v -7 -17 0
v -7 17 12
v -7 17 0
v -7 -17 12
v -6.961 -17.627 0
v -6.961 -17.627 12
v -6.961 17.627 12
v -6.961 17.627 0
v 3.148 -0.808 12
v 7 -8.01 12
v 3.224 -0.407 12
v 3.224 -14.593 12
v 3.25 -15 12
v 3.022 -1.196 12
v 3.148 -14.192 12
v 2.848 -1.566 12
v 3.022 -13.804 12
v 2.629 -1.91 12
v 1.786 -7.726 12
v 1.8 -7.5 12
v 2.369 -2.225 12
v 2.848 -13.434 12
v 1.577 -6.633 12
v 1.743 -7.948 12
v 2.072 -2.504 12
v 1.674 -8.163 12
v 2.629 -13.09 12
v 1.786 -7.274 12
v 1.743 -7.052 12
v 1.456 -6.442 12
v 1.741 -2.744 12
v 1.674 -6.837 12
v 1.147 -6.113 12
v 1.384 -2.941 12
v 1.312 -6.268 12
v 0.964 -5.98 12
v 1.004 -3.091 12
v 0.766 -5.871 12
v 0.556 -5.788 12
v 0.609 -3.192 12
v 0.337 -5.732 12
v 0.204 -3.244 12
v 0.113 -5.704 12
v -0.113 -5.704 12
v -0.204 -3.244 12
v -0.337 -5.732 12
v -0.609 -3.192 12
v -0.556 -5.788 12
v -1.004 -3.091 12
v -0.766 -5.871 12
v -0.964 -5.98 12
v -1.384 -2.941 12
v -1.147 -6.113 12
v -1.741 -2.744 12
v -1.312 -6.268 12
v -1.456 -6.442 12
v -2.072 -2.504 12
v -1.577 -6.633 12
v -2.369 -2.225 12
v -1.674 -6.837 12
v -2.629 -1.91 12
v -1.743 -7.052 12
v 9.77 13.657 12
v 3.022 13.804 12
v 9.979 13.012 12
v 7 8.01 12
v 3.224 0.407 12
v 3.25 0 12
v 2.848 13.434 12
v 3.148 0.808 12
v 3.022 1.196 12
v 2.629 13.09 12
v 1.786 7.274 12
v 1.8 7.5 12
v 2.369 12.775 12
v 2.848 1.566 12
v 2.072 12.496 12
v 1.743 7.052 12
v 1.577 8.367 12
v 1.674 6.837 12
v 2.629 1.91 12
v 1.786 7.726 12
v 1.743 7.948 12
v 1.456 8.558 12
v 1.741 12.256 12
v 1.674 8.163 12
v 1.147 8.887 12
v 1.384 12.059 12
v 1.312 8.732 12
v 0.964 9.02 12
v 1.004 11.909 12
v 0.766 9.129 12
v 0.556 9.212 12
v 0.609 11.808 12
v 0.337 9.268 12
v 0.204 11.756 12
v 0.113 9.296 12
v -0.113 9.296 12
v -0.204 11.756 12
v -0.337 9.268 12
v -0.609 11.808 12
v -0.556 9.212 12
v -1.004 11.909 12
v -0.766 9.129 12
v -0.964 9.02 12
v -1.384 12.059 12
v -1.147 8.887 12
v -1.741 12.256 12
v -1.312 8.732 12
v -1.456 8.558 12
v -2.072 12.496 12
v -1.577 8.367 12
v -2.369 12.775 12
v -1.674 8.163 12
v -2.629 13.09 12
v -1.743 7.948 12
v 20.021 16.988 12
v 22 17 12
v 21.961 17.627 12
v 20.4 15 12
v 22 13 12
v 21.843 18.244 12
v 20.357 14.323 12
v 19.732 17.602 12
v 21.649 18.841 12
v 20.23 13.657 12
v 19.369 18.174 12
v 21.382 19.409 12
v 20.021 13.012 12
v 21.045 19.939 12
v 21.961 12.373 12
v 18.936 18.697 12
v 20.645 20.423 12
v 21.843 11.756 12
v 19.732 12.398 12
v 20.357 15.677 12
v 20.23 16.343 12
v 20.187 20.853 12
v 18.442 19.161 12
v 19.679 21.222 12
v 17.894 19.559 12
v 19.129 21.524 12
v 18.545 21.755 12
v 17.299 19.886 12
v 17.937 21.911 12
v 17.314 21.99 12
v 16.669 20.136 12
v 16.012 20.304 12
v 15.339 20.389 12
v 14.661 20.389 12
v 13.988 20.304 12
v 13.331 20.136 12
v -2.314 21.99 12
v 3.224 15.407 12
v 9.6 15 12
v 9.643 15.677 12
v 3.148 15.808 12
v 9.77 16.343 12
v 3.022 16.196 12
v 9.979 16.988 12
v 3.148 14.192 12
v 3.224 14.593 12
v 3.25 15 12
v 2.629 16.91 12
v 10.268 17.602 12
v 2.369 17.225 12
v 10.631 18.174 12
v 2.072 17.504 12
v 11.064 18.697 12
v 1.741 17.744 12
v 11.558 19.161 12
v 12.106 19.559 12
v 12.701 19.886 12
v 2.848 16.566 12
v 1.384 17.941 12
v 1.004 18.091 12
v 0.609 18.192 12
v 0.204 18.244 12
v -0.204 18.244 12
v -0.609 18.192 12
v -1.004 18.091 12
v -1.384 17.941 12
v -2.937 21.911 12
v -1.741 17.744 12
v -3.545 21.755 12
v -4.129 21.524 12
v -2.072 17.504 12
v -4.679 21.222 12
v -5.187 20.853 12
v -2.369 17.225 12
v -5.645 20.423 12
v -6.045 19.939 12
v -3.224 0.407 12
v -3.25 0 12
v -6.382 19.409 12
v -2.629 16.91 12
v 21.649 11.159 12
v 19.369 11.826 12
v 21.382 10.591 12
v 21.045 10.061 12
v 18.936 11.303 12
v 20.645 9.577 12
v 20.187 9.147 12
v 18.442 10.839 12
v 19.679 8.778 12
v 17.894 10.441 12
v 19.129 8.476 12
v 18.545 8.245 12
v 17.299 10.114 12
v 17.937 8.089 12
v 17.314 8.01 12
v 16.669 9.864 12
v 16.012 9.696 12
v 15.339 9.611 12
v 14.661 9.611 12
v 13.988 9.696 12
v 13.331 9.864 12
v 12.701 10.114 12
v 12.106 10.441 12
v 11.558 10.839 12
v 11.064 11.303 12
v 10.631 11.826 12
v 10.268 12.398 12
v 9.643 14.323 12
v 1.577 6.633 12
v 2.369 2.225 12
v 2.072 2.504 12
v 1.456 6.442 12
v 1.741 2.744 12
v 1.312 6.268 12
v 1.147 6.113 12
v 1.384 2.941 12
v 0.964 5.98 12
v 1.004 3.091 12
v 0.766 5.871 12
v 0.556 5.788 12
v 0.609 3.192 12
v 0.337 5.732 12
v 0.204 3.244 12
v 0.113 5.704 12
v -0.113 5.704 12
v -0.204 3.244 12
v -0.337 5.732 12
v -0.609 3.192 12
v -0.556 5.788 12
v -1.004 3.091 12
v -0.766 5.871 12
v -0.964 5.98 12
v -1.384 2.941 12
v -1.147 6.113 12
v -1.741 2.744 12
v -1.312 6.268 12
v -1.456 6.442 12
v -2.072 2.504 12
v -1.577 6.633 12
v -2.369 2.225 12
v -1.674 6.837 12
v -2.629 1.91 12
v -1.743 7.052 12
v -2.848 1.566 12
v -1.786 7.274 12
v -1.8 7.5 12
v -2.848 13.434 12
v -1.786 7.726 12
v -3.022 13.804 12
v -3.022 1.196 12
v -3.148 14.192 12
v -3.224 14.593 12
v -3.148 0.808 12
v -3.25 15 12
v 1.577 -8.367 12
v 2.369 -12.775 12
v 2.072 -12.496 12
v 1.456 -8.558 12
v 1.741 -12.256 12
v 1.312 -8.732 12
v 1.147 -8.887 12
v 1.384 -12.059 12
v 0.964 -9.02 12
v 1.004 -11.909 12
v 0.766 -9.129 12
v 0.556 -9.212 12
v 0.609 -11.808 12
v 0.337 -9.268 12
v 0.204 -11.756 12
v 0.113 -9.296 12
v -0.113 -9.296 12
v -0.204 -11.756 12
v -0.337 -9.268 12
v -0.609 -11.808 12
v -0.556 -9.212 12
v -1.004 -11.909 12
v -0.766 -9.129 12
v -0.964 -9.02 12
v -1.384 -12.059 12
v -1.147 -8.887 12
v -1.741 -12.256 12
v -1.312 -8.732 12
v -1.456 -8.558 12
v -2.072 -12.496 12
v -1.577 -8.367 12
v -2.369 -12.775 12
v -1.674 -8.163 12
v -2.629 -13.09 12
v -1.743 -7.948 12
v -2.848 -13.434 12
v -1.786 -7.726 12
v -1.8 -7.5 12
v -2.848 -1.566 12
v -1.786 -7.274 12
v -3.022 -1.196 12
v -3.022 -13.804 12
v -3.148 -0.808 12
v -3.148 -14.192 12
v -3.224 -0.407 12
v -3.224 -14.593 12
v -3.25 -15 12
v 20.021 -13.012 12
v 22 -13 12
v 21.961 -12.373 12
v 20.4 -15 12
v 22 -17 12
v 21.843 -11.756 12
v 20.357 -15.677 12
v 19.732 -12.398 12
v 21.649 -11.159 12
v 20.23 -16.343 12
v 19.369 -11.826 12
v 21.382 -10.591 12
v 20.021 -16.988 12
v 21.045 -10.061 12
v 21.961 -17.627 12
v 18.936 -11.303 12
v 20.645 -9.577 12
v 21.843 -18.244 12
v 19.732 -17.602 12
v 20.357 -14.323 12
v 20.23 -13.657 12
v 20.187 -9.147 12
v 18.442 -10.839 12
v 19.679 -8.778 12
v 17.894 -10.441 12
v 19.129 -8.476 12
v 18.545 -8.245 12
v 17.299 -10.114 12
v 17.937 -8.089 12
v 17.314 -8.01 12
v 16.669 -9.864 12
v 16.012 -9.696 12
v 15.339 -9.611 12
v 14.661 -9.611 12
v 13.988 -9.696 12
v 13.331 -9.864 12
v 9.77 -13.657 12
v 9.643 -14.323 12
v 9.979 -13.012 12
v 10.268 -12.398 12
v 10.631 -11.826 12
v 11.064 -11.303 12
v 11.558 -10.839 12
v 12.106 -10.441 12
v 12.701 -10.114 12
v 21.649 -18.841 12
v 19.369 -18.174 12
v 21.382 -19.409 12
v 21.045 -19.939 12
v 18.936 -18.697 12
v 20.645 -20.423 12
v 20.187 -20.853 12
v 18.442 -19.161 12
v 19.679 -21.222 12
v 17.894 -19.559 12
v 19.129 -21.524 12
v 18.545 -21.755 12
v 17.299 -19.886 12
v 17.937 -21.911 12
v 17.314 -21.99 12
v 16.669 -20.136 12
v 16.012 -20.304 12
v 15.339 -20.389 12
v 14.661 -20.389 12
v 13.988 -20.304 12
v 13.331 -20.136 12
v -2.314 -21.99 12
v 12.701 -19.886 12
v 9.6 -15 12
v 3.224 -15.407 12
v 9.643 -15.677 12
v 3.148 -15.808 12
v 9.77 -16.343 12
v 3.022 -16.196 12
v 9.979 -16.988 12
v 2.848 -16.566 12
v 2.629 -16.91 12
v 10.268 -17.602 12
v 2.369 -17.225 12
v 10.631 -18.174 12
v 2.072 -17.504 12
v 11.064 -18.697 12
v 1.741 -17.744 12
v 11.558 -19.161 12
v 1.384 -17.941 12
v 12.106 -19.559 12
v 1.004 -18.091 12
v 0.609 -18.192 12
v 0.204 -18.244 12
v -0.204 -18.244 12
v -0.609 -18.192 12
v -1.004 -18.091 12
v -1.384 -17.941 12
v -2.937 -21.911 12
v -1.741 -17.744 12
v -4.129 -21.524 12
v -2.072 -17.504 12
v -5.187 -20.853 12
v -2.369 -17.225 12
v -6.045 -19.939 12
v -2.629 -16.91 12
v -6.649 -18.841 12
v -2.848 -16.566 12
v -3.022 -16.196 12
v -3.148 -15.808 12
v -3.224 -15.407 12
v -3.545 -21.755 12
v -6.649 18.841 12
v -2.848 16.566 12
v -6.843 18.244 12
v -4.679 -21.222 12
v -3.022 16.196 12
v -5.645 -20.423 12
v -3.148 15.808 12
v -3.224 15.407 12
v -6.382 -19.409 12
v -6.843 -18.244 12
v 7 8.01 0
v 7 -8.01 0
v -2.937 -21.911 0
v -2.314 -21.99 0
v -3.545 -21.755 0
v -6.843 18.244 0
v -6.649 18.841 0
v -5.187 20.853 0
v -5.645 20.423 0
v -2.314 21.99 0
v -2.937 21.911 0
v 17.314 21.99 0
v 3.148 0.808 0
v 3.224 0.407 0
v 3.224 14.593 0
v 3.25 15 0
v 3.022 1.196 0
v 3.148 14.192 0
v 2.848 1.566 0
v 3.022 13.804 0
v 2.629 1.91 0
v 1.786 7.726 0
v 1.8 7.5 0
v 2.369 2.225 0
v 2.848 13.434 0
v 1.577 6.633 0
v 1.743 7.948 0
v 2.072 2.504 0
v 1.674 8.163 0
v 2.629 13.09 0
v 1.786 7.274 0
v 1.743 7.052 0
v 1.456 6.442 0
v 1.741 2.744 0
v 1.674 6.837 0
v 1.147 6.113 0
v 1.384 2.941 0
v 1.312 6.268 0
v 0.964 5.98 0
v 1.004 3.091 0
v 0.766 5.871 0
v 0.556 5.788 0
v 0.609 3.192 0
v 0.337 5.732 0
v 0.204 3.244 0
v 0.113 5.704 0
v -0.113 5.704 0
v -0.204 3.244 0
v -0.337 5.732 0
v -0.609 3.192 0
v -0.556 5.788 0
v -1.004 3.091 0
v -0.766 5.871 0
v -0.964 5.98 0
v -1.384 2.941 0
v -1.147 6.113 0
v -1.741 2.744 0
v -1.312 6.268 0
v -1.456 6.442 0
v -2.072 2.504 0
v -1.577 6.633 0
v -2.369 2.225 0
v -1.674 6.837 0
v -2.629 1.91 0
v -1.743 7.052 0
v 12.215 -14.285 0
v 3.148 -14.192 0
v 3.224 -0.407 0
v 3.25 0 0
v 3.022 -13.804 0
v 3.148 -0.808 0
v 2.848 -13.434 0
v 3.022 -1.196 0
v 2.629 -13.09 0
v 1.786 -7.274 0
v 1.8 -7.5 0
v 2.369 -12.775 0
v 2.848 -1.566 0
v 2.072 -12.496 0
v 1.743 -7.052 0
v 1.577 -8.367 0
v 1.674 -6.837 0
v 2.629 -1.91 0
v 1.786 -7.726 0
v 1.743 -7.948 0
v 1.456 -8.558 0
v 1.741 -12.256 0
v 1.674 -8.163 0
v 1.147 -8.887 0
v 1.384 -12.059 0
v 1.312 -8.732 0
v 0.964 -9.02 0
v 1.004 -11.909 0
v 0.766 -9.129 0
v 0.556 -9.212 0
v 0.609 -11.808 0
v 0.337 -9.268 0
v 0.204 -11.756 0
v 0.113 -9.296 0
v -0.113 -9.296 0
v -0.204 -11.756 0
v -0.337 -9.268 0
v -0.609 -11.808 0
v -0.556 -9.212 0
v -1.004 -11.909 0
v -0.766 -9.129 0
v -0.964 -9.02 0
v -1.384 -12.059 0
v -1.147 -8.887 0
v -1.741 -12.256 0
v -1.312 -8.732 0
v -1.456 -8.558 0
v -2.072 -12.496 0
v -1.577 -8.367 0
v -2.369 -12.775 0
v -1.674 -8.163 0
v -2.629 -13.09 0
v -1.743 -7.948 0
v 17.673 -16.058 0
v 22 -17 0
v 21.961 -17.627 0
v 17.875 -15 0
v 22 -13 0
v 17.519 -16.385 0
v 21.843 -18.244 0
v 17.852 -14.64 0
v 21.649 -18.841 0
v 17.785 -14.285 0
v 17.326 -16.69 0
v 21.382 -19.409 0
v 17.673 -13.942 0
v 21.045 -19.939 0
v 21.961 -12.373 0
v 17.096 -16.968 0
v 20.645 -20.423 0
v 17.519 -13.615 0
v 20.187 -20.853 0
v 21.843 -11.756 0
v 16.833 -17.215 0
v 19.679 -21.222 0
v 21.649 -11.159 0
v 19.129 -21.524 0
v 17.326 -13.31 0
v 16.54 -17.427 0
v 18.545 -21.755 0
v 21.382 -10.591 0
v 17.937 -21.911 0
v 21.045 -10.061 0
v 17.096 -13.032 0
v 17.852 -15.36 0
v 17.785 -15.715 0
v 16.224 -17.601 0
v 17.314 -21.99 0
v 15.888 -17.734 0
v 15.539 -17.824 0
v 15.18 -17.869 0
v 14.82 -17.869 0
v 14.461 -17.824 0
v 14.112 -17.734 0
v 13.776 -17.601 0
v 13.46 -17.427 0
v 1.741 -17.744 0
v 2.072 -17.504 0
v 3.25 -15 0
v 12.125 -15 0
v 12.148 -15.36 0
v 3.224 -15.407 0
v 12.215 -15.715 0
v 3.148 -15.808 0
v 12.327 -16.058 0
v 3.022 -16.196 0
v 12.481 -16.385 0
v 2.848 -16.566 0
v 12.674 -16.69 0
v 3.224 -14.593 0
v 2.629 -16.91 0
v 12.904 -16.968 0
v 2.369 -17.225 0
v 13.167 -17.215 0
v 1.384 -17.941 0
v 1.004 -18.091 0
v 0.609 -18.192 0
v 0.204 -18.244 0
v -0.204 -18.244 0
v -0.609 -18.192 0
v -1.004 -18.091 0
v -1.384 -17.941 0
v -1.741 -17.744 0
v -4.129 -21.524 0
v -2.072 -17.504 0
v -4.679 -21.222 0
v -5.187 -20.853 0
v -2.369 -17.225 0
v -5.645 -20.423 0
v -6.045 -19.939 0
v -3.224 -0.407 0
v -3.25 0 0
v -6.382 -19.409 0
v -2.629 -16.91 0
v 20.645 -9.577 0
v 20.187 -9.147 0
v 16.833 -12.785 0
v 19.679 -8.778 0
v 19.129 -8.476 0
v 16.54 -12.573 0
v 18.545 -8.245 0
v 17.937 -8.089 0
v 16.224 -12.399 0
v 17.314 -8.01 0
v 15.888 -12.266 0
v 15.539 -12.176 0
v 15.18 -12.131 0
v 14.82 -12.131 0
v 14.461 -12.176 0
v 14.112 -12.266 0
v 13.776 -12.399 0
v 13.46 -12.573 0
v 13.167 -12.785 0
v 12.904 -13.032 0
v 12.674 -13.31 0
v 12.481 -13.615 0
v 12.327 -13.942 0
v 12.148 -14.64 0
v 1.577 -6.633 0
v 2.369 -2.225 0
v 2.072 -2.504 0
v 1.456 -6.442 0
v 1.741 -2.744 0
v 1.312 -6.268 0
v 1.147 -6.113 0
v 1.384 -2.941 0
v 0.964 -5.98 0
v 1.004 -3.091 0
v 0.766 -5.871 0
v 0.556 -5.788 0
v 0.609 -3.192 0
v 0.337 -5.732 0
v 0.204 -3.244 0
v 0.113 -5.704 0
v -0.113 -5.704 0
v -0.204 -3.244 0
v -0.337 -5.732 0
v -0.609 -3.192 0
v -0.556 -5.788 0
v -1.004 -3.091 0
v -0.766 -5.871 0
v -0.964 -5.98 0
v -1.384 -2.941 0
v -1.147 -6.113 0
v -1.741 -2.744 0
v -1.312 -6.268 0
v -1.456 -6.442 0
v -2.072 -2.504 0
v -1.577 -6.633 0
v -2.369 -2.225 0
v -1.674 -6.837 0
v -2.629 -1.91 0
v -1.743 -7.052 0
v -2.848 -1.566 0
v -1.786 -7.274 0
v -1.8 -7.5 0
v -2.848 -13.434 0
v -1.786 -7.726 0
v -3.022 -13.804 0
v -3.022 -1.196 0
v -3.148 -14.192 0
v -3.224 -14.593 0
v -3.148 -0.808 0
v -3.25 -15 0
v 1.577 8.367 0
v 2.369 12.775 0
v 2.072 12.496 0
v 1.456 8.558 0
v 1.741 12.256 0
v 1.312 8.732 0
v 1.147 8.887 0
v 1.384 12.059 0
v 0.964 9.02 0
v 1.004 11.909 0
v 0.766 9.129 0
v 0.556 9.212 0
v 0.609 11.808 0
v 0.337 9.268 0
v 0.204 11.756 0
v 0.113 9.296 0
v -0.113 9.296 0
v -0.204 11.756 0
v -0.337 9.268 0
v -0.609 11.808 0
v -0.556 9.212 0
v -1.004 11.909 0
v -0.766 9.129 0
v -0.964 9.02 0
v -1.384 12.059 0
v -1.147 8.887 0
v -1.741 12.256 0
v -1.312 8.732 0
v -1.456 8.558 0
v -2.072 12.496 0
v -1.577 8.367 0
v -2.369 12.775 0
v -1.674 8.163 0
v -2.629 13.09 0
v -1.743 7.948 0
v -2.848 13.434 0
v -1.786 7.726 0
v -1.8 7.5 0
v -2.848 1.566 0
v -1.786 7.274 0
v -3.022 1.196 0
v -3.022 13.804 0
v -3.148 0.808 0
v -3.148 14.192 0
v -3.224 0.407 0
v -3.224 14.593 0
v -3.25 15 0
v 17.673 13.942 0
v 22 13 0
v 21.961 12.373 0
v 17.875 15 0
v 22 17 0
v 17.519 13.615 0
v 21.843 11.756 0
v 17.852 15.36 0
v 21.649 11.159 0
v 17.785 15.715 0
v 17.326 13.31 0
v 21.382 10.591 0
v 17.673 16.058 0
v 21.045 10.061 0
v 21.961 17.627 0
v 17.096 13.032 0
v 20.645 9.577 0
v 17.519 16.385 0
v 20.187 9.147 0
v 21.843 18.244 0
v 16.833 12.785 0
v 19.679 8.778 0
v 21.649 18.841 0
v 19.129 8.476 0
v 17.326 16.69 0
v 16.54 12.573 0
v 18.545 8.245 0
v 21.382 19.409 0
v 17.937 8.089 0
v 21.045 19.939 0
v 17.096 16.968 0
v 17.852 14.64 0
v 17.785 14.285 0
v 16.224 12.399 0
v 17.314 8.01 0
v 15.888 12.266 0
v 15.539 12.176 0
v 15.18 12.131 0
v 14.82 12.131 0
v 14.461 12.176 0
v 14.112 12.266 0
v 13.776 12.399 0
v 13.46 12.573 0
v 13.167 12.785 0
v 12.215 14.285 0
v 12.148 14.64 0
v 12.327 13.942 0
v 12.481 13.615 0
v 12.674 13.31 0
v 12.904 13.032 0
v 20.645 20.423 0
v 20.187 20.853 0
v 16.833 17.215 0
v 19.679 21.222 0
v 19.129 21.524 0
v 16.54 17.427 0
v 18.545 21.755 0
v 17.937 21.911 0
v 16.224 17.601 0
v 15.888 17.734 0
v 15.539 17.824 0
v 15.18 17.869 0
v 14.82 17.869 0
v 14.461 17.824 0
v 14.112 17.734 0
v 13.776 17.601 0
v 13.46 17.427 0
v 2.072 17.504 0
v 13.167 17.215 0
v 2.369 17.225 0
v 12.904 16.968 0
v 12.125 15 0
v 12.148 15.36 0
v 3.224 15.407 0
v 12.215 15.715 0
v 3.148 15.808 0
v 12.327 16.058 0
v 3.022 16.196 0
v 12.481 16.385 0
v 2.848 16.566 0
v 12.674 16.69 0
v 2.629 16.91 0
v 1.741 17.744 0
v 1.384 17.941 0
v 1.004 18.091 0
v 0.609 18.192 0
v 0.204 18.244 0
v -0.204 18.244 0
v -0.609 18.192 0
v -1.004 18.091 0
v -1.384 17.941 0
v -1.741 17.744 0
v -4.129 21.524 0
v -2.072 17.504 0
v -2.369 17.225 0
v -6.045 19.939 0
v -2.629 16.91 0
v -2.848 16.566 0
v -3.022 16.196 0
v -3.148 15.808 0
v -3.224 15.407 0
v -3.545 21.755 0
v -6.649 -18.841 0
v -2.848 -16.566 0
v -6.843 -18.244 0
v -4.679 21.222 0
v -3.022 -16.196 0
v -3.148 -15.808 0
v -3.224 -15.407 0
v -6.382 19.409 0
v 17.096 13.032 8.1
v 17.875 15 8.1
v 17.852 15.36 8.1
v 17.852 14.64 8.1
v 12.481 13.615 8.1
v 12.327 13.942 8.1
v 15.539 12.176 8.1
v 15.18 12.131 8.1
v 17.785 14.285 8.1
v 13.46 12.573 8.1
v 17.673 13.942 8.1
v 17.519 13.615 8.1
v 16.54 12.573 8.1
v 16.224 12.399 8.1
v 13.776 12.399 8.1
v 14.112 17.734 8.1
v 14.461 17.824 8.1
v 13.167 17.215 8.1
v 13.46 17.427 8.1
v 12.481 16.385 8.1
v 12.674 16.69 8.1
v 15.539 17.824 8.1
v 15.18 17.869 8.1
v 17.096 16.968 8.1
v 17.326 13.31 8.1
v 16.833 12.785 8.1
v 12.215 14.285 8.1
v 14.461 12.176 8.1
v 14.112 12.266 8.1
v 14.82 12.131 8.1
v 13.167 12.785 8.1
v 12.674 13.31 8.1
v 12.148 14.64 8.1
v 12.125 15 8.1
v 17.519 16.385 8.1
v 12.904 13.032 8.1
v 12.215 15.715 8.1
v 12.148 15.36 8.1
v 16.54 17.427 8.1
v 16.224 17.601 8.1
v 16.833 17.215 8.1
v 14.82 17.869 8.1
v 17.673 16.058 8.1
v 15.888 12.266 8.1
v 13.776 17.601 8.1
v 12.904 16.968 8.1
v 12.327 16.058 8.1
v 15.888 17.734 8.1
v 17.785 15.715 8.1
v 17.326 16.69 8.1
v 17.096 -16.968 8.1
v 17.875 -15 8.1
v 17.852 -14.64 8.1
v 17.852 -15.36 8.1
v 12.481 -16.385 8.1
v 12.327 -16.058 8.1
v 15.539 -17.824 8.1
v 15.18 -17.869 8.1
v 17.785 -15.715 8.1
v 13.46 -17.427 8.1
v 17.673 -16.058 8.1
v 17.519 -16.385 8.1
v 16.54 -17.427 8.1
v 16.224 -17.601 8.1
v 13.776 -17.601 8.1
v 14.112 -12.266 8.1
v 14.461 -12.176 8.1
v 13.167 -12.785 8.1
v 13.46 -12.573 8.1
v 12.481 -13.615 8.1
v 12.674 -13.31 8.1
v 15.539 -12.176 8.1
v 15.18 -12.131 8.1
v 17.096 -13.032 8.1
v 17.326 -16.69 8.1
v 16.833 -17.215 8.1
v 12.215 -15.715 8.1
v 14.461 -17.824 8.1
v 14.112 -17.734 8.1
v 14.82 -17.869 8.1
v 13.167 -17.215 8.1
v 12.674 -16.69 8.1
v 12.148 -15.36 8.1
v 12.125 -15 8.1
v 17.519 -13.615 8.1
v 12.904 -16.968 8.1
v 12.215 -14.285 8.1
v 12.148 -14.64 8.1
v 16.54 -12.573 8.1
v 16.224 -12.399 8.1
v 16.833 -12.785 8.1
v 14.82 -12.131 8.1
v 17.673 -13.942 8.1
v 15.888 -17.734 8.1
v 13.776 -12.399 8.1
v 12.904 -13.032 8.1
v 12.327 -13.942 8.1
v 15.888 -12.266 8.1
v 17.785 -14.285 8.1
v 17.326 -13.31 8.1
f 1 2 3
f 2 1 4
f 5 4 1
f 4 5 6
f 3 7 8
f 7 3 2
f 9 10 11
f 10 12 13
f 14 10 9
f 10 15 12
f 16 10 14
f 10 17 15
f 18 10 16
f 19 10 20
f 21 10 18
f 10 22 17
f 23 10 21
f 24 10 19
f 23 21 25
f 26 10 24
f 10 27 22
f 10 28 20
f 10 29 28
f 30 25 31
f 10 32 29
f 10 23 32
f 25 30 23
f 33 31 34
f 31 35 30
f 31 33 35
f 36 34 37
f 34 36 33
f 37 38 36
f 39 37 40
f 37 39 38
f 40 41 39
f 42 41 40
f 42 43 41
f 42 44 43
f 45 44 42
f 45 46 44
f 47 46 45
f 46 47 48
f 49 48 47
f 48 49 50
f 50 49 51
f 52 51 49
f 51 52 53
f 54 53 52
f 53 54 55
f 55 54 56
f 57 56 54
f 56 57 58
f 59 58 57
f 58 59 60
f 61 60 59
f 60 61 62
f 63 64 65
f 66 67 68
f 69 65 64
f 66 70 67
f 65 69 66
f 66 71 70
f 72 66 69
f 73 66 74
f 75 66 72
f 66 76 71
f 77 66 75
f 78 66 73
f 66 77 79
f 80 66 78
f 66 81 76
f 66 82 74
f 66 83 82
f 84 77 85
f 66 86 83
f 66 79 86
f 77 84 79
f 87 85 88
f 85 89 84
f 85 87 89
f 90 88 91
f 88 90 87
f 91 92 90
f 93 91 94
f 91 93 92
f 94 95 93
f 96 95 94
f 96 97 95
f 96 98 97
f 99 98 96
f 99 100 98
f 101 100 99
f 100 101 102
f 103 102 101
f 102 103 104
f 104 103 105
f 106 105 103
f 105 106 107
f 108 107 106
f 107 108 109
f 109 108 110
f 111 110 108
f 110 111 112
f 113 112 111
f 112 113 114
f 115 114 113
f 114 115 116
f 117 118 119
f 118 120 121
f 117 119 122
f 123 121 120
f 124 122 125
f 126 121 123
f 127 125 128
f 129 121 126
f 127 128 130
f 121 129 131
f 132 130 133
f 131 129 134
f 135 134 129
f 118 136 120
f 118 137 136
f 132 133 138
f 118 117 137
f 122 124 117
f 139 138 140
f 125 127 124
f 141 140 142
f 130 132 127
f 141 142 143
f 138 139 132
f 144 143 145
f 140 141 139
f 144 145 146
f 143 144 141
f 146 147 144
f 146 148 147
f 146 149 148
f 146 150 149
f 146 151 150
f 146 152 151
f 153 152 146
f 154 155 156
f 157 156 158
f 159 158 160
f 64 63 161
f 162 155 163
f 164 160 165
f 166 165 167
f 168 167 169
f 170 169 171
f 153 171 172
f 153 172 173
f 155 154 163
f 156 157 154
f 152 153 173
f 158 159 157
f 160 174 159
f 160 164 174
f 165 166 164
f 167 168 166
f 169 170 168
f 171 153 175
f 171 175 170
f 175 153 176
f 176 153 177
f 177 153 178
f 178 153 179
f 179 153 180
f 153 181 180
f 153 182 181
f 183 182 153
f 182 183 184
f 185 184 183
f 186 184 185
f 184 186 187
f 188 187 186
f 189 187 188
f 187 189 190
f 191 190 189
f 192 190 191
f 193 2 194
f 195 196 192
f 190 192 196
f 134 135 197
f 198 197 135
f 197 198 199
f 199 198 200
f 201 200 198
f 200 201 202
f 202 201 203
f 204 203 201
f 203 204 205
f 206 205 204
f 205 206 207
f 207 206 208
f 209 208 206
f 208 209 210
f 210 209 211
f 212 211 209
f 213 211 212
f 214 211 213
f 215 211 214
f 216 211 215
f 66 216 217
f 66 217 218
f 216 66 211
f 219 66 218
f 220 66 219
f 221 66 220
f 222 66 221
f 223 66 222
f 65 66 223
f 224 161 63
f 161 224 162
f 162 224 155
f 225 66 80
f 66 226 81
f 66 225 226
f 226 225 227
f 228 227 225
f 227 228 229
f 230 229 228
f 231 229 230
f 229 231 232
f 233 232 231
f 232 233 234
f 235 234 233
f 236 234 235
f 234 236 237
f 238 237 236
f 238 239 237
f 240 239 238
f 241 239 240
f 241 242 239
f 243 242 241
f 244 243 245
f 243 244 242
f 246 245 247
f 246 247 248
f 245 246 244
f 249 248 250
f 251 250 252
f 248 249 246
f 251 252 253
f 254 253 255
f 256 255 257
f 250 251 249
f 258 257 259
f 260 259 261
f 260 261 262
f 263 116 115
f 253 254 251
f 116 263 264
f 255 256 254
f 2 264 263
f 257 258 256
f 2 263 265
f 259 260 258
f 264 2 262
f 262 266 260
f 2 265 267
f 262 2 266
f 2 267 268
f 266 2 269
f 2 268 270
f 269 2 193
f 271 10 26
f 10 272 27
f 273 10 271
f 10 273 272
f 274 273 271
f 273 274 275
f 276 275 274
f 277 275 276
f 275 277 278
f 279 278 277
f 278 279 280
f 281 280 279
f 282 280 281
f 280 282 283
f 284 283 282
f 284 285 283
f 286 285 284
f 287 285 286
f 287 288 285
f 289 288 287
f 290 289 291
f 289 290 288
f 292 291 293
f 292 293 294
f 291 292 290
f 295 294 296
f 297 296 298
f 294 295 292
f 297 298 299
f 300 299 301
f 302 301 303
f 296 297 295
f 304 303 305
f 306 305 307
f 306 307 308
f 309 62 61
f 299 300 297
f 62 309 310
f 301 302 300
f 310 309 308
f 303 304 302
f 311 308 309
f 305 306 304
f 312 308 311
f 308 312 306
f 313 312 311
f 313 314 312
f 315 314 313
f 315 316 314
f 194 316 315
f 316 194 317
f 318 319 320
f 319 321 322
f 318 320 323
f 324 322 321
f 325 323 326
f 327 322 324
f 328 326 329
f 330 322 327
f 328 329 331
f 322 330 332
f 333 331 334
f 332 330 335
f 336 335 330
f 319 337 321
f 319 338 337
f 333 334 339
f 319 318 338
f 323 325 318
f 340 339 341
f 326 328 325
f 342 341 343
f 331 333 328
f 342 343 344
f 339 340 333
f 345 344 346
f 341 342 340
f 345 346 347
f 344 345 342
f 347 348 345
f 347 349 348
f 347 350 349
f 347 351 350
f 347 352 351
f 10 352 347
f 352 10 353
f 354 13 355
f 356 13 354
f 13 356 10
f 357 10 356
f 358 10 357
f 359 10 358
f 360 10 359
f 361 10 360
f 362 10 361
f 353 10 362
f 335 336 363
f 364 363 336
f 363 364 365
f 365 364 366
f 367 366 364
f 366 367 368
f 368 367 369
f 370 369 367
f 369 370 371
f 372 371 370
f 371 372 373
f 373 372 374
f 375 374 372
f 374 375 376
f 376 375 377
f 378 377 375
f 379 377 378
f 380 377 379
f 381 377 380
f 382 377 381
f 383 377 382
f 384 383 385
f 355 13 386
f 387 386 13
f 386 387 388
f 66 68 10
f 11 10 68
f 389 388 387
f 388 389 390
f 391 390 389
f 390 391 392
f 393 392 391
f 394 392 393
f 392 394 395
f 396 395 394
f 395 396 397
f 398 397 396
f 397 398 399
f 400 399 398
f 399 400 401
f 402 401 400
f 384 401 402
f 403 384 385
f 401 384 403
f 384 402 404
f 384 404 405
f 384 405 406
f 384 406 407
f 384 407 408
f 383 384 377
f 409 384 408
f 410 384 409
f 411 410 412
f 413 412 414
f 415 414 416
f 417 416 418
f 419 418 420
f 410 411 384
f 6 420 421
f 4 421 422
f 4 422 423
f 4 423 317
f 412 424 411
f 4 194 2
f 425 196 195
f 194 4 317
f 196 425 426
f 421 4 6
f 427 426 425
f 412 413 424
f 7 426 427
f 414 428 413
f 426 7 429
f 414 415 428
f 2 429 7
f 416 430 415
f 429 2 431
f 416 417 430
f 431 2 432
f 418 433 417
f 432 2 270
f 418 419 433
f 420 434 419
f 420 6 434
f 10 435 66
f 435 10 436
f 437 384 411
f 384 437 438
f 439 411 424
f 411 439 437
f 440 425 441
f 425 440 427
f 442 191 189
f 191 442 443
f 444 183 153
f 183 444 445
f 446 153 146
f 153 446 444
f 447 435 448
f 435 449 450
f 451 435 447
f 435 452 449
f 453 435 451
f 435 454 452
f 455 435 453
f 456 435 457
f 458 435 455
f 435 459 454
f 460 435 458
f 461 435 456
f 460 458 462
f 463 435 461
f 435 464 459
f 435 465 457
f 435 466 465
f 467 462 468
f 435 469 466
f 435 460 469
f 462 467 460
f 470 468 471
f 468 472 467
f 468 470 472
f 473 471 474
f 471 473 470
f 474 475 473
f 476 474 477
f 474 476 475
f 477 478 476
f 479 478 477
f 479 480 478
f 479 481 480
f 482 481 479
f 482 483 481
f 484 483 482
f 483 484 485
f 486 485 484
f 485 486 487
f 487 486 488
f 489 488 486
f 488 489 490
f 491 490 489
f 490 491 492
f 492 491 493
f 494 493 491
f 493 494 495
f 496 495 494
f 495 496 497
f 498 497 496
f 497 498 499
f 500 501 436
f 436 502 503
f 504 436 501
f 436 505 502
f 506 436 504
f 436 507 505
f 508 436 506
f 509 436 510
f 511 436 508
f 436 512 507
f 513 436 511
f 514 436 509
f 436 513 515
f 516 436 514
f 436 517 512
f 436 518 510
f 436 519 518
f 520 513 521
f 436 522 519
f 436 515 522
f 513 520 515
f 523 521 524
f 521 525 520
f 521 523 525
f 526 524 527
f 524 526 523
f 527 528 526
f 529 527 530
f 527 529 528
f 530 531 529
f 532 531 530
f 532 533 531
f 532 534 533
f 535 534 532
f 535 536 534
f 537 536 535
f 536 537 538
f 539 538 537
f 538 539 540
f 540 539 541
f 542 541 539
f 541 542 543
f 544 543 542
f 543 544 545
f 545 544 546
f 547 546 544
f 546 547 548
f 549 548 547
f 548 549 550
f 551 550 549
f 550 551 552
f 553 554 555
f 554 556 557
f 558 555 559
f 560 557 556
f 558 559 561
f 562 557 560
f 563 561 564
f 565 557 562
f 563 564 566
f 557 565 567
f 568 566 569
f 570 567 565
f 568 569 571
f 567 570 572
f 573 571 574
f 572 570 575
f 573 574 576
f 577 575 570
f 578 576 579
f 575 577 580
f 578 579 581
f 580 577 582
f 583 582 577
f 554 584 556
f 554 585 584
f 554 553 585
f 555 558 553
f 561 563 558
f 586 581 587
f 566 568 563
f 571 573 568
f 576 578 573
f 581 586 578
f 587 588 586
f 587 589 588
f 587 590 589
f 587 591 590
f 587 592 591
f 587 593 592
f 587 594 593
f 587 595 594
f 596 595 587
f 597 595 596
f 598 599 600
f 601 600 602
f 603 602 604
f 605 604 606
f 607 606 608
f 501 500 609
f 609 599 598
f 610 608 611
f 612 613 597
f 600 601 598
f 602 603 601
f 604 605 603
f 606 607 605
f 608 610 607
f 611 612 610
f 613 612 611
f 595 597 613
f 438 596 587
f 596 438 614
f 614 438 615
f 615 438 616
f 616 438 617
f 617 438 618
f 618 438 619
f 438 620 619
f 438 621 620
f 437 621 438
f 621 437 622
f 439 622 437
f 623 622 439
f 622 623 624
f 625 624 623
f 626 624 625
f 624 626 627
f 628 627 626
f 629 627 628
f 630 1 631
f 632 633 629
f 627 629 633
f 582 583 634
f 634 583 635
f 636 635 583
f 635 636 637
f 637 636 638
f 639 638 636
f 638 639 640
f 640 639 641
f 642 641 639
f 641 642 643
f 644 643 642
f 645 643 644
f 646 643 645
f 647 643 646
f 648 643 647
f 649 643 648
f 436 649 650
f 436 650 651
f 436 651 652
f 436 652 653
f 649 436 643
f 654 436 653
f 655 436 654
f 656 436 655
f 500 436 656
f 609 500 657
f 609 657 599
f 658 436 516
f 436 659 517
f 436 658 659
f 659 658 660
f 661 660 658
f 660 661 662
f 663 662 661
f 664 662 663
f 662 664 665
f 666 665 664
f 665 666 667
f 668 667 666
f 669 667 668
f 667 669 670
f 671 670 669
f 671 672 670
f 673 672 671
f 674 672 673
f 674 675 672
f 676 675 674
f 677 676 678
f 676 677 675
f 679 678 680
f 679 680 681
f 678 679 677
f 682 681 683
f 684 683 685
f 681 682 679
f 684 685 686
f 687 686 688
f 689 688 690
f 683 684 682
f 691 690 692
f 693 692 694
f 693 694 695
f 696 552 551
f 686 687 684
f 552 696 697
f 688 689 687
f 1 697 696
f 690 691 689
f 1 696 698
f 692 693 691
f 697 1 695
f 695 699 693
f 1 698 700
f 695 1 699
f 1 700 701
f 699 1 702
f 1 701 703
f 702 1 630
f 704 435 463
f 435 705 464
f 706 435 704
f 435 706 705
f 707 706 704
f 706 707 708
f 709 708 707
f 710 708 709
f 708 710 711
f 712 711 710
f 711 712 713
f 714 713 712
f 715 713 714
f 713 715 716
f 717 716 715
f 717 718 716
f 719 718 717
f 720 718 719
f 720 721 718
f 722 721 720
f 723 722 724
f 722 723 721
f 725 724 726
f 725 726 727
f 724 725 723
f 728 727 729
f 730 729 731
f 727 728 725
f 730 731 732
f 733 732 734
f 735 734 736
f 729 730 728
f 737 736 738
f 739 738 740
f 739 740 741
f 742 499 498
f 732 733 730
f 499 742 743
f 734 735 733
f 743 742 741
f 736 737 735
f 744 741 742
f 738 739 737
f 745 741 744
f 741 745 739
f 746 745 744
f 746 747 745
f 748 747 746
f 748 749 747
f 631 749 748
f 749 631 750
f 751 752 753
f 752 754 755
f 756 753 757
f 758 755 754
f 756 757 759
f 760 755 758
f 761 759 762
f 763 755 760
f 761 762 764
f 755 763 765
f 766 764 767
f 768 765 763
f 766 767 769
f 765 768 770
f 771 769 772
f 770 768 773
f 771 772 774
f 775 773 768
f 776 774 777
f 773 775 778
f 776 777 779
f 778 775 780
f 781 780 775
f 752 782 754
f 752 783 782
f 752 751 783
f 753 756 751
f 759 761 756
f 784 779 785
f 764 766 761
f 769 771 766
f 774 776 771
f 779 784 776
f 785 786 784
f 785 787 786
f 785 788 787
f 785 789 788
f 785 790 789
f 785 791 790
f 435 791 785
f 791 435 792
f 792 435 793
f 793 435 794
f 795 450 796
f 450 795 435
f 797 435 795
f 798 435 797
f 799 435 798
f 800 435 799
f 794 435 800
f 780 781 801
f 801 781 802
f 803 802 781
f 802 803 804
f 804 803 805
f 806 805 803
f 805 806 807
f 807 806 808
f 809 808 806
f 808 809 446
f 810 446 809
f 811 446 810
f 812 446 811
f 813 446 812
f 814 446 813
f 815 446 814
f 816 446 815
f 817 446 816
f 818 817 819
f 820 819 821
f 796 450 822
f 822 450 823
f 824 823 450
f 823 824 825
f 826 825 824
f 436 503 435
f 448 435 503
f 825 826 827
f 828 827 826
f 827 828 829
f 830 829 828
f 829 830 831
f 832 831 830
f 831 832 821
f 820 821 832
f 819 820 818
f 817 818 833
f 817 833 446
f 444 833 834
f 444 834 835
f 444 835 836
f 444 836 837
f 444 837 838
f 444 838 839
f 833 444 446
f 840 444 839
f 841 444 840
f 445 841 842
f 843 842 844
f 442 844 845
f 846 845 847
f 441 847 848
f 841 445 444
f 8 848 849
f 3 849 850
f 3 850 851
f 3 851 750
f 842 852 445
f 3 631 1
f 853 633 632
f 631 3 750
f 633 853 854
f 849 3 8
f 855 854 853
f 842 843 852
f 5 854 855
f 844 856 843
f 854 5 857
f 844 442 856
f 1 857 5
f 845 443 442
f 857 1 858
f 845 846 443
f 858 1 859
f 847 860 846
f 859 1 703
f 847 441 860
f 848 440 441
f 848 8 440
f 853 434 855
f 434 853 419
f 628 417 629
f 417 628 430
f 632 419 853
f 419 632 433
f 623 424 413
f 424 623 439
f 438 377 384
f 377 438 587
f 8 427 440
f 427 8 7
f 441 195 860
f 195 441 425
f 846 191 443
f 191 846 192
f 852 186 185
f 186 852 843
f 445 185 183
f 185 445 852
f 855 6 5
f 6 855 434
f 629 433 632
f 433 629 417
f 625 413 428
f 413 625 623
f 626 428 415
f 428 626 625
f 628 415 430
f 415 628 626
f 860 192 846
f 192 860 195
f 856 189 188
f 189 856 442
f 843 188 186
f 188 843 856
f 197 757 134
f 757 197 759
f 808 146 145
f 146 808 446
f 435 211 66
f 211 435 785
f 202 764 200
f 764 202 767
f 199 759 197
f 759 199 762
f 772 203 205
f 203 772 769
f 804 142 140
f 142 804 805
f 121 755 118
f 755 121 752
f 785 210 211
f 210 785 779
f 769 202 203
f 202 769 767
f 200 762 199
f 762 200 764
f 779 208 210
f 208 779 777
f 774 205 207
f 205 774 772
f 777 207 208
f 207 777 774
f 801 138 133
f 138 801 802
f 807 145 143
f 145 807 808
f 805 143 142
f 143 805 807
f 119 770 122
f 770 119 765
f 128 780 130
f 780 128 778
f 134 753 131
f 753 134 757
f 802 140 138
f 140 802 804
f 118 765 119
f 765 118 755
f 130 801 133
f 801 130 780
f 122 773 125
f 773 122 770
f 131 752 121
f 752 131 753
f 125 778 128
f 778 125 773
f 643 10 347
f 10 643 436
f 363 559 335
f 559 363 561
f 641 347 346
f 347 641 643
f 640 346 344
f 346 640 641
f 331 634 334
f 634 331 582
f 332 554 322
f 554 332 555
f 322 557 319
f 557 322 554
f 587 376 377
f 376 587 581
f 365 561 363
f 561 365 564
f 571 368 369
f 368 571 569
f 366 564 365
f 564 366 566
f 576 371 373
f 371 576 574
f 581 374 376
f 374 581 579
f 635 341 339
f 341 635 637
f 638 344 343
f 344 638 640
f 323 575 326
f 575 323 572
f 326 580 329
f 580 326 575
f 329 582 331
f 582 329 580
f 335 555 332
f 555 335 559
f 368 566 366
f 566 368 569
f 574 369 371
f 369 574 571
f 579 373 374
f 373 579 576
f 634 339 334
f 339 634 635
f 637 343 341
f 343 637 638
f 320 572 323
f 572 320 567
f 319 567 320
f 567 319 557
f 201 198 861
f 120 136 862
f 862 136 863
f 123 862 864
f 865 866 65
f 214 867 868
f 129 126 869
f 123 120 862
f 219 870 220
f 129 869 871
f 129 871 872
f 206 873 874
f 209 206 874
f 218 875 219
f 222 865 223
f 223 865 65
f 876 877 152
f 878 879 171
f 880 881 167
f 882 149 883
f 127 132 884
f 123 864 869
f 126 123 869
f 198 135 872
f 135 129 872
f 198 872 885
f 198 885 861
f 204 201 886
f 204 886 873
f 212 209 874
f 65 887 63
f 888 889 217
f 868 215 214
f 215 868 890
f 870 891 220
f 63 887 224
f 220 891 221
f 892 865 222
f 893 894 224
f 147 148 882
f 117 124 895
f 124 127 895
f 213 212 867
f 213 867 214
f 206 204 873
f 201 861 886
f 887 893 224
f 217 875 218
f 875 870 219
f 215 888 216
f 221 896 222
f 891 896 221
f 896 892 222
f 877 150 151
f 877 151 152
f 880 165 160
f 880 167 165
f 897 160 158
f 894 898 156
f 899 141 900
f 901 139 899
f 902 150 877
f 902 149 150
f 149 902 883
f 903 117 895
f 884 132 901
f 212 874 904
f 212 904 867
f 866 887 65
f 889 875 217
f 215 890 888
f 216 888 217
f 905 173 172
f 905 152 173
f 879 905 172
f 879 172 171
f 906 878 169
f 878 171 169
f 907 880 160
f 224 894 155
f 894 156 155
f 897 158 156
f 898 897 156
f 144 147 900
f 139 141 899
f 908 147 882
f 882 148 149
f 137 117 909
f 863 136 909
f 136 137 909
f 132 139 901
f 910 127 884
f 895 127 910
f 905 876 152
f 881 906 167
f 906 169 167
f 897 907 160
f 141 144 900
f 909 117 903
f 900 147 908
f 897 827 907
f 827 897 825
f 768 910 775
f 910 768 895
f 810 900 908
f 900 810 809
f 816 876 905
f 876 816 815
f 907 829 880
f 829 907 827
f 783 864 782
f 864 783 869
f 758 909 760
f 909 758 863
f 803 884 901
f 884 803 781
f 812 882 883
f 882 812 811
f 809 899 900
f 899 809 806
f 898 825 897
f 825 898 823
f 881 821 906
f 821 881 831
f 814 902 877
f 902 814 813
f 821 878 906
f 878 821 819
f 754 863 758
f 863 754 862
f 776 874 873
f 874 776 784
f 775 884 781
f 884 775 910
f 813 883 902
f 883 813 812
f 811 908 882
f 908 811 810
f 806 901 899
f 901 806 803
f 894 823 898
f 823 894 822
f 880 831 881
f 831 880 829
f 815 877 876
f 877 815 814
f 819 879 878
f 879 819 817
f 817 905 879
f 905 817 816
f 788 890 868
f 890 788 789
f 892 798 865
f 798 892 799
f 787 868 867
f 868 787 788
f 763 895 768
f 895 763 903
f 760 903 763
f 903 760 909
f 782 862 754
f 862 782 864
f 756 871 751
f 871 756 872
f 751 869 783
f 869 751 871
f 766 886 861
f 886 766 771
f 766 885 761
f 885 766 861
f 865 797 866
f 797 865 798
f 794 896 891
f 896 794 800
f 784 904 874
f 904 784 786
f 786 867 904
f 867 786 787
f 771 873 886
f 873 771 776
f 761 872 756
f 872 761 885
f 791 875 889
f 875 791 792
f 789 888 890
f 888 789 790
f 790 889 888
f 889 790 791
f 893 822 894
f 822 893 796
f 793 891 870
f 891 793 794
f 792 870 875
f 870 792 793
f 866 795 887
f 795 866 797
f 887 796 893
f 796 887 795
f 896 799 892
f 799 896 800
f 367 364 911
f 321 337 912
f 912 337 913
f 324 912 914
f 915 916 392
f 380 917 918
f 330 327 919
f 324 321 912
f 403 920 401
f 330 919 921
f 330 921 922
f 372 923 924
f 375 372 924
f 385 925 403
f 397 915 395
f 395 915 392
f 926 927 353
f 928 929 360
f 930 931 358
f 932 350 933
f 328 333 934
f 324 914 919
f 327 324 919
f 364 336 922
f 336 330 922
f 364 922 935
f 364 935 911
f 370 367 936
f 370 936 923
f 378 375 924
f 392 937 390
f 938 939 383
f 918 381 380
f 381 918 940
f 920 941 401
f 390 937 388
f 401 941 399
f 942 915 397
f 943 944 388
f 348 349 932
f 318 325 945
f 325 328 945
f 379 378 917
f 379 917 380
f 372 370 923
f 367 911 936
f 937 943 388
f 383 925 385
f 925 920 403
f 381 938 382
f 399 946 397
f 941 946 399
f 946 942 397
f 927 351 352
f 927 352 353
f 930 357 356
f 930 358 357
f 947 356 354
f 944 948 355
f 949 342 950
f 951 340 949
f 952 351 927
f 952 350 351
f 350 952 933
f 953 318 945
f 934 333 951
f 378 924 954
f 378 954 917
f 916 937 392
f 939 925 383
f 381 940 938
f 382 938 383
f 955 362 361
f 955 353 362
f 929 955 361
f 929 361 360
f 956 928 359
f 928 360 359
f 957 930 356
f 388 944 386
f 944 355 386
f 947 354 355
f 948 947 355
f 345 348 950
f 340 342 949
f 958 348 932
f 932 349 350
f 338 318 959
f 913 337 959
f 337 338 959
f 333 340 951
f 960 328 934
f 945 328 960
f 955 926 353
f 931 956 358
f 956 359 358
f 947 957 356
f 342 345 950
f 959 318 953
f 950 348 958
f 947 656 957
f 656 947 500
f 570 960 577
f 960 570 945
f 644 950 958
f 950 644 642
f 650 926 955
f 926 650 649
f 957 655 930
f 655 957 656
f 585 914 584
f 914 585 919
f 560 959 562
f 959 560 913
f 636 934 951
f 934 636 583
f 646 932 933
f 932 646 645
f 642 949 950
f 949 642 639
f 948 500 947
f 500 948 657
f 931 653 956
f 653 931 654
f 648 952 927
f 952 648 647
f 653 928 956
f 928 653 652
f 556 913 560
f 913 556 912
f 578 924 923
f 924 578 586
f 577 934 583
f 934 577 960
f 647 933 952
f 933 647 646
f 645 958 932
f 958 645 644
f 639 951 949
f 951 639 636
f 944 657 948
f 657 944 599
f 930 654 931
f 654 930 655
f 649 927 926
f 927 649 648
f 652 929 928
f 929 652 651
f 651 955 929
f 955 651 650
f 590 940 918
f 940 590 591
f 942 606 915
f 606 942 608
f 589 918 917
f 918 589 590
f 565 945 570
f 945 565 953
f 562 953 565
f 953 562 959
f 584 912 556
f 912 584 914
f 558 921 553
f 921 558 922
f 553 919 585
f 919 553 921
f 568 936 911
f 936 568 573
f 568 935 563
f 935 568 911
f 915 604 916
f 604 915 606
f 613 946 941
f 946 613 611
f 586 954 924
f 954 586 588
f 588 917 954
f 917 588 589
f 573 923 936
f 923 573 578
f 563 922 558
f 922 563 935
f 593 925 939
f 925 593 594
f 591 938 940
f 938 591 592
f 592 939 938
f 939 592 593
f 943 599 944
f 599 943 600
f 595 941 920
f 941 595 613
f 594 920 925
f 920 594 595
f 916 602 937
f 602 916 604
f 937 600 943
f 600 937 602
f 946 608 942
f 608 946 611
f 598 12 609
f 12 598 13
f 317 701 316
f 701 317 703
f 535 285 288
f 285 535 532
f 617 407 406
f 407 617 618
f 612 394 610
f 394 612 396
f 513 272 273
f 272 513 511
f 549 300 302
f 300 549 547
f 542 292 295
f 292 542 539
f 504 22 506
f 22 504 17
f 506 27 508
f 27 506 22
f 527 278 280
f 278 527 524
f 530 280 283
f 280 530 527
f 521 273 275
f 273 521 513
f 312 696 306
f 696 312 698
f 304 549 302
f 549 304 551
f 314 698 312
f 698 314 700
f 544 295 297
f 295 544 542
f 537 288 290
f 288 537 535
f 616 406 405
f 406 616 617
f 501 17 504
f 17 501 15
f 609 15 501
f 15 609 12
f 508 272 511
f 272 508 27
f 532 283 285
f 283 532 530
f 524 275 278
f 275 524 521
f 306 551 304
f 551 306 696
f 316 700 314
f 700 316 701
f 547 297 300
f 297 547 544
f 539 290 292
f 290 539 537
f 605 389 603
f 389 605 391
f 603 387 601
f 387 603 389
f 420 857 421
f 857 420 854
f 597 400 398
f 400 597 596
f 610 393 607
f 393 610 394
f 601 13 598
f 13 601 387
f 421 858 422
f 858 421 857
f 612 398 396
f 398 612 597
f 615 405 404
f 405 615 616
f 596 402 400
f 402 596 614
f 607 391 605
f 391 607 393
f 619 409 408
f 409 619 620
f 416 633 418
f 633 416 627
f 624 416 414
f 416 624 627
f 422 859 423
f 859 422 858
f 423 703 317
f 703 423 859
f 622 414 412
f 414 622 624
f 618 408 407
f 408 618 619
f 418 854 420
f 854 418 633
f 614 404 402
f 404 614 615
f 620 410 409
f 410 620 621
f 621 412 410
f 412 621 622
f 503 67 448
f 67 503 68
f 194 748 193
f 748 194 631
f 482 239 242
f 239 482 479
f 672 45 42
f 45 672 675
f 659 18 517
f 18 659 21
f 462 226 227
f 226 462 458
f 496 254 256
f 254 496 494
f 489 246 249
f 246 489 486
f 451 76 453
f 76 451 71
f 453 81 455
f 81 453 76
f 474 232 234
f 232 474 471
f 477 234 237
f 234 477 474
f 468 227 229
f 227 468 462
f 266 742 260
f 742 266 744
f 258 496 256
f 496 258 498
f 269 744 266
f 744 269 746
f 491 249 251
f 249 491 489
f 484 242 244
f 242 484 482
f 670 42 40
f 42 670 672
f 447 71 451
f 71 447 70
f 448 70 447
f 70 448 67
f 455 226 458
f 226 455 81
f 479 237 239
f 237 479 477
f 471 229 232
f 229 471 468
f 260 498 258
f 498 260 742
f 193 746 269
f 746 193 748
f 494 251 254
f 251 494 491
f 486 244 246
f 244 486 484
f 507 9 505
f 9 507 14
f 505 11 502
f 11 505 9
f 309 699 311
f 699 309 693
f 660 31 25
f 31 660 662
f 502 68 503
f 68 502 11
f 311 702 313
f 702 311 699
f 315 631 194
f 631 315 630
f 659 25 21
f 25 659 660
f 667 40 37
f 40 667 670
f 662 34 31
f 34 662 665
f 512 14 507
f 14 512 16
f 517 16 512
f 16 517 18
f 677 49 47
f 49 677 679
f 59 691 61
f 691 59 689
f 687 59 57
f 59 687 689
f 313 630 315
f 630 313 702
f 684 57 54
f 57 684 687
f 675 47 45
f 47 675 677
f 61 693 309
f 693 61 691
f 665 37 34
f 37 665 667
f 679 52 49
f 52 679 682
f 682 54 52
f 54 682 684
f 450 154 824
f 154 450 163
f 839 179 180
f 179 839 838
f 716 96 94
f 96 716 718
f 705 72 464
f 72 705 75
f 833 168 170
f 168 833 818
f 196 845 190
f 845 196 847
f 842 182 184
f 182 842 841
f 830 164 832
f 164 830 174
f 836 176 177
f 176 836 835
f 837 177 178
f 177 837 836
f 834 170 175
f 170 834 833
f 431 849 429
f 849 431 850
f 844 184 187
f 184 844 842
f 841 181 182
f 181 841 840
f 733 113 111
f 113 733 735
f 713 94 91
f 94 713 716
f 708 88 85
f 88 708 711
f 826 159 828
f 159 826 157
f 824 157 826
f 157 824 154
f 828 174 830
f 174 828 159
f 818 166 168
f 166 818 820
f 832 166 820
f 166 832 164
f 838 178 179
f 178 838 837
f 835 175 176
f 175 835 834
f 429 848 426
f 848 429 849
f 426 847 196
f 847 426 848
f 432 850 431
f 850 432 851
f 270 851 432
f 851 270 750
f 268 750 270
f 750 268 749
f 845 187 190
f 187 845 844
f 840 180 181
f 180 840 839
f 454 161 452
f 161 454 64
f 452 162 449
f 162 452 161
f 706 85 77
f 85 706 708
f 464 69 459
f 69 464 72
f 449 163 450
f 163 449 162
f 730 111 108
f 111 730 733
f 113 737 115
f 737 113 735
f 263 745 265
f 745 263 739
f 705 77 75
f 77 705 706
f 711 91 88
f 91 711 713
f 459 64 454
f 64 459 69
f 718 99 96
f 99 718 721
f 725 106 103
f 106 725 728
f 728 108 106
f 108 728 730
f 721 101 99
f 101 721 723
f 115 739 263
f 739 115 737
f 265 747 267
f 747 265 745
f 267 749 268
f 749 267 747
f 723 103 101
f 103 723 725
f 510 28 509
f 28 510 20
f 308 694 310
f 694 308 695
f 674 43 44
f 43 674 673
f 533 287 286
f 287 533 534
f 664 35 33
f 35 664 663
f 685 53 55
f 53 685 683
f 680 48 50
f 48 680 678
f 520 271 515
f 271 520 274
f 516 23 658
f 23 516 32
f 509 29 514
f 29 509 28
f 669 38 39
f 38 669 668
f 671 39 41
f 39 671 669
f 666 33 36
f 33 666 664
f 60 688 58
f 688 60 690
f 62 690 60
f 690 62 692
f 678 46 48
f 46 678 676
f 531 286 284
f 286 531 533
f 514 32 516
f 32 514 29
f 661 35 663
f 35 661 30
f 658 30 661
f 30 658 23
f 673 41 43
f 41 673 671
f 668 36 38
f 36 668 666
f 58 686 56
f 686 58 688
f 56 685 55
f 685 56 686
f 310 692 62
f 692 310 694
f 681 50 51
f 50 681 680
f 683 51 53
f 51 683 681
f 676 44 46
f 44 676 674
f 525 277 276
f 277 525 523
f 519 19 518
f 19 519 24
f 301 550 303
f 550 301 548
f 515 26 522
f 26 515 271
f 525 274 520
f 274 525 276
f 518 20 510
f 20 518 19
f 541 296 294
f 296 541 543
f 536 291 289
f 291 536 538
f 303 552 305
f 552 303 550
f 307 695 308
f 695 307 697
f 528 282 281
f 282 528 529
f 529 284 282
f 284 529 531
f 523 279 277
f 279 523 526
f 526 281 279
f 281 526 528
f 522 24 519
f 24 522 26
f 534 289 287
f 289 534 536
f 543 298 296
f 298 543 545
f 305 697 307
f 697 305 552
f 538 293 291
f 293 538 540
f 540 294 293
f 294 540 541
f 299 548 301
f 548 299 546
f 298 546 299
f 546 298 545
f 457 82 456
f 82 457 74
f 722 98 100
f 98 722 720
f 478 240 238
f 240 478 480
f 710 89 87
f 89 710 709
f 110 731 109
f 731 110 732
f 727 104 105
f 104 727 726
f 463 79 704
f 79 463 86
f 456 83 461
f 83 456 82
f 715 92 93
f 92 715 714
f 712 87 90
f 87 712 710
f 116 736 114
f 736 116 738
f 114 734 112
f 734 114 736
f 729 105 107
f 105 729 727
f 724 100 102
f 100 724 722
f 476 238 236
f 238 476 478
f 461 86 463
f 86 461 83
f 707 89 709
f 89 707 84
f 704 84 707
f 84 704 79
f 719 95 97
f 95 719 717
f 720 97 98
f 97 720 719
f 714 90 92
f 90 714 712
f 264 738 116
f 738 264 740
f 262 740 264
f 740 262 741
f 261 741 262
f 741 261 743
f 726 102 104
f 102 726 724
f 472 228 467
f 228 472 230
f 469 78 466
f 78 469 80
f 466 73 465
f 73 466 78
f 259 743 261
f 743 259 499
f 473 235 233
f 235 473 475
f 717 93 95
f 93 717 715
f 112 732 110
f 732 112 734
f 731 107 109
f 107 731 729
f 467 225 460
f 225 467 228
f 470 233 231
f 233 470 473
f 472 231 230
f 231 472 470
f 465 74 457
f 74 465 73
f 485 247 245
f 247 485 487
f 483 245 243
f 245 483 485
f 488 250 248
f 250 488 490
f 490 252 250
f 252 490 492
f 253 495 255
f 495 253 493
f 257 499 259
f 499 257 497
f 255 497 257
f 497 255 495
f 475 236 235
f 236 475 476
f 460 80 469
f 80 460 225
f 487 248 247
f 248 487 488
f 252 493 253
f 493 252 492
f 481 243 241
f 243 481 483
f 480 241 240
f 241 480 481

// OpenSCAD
$fn = 50;


difference() {
	union() {
		hull() {
			translate(v = [-2.0000000000, 17.0000000000, 0]) {
				cylinder(h = 12, r = 5);
			}
			translate(v = [2.0000000000, 17.0000000000, 0]) {
				cylinder(h = 12, r = 5);
			}
			translate(v = [-2.0000000000, -17.0000000000, 0]) {
				cylinder(h = 12, r = 5);
			}
			translate(v = [2.0000000000, -17.0000000000, 0]) {
				cylinder(h = 12, r = 5);
			}
		}
		translate(v = [7.5000000000, 15.0000000000, 0]) {
			hull() {
				translate(v = [-9.5000000000, 2.0000000000, 0]) {
					cylinder(h = 12, r = 5);
				}
				translate(v = [9.5000000000, 2.0000000000, 0]) {
					cylinder(h = 12, r = 5);
				}
				translate(v = [-9.5000000000, -2.0000000000, 0]) {
					cylinder(h = 12, r = 5);
				}
				translate(v = [9.5000000000, -2.0000000000, 0]) {
					cylinder(h = 12, r = 5);
				}
			}
		}
		translate(v = [7.5000000000, -15.0000000000, 0]) {
			hull() {
				translate(v = [-9.5000000000, 2.0000000000, 0]) {
					cylinder(h = 12, r = 5);
				}
				translate(v = [9.5000000000, 2.0000000000, 0]) {
					cylinder(h = 12, r = 5);
				}
				translate(v = [-9.5000000000, -2.0000000000, 0]) {
					cylinder(h = 12, r = 5);
				}
				translate(v = [9.5000000000, -2.0000000000, 0]) {
					cylinder(h = 12, r = 5);
				}
			}
		}
	}
	union() {
		translate(v = [15.0000000000, 15.0000000000, 12]) {
			rotate(a = [0, 0, 0]) {
				difference() {
					union() {
						#translate(v = [0, 0, -12.0000000000]) {
							cylinder(h = 12, r = 2.6000000000);
						}
						#translate(v = [0, 0, -3.9000000000]) {
							cylinder(h = 3.9000000000, r1 = 2.8750000000, r2 = 5.4000000000);
						}
						#translate(v = [0, 0, -12.0000000000]) {
							cylinder(h = 12, r = 2.8750000000);
						}
						#translate(v = [0, 0, -12.0000000000]) {
							cylinder(h = 12, r = 2.6000000000);
						}
					}
					union();
				}
			}
		}
		translate(v = [15.0000000000, -15.0000000000, 12]) {
			rotate(a = [0, 0, 0]) {
				difference() {
					union() {
						#translate(v = [0, 0, -12.0000000000]) {
							cylinder(h = 12, r = 2.6000000000);
						}
						#translate(v = [0, 0, -3.9000000000]) {
							cylinder(h = 3.9000000000, r1 = 2.8750000000, r2 = 5.4000000000);
						}
						#translate(v = [0, 0, -12.0000000000]) {
							cylinder(h = 12, r = 2.8750000000);
						}
						#translate(v = [0, 0, -12.0000000000]) {
							cylinder(h = 12, r = 2.6000000000);
						}
					}
					union();
				}
			}
		}
		translate(v = [0.0000000000, -15.0000000000, 0]) {
			translate(v = [0, 0, -100]) {
				cylinder(h = 200, r = 3.2500000000);
			}
		}
		translate(v = [0, 0, -100]) {
			cylinder(h = 200, r = 3.2500000000);
		}
		translate(v = [0.0000000000, 15.0000000000, 0]) {
			translate(v = [0, 0, -100]) {
				cylinder(h = 200, r = 3.2500000000);
			}
		}
		translate(v = [0.0000000000, -15.0000000000, 0]) {
			translate(v = [0, 0, -100]) {
				cylinder(h = 200, r = 1.8000000000);
			}
		}
		translate(v = [0.0000000000, -7.5000000000, 0]) {
			translate(v = [0, 0, -100]) {
				cylinder(h = 200, r = 1.8000000000);
			}
		}
		translate(v = [0, 0, -100]) {
			cylinder(h = 200, r = 1.8000000000);
		}
		translate(v = [0.0000000000, 7.5000000000, 0]) {
			translate(v = [0, 0, -100]) {
				cylinder(h = 200, r = 1.8000000000);
			}
		}
		translate(v = [0.0000000000, 15.0000000000, 0]) {
			translate(v = [0, 0, -100]) {
				cylinder(h = 200, r = 1.8000000000);
			}
		}
	}
}
